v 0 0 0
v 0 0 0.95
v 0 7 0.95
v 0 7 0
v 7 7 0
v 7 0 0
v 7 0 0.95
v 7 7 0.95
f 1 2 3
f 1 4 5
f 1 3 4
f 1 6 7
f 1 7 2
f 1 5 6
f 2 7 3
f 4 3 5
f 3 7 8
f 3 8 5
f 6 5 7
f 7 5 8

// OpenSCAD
/* Warning, this is a very basic generator with a lot of approximation 
input data : [VQFN, 2RW, 7x7x0.95mm, 84, , A, C04-00551A]
generated by com.zoubworld.electronics.cad.model3d.Basic
Date : Sun Feb 15 10:50:48 CET 2026
*/

//body
color("black")
translate([0,0,0])
cube([7.0,7.0,0.95], center=false);
